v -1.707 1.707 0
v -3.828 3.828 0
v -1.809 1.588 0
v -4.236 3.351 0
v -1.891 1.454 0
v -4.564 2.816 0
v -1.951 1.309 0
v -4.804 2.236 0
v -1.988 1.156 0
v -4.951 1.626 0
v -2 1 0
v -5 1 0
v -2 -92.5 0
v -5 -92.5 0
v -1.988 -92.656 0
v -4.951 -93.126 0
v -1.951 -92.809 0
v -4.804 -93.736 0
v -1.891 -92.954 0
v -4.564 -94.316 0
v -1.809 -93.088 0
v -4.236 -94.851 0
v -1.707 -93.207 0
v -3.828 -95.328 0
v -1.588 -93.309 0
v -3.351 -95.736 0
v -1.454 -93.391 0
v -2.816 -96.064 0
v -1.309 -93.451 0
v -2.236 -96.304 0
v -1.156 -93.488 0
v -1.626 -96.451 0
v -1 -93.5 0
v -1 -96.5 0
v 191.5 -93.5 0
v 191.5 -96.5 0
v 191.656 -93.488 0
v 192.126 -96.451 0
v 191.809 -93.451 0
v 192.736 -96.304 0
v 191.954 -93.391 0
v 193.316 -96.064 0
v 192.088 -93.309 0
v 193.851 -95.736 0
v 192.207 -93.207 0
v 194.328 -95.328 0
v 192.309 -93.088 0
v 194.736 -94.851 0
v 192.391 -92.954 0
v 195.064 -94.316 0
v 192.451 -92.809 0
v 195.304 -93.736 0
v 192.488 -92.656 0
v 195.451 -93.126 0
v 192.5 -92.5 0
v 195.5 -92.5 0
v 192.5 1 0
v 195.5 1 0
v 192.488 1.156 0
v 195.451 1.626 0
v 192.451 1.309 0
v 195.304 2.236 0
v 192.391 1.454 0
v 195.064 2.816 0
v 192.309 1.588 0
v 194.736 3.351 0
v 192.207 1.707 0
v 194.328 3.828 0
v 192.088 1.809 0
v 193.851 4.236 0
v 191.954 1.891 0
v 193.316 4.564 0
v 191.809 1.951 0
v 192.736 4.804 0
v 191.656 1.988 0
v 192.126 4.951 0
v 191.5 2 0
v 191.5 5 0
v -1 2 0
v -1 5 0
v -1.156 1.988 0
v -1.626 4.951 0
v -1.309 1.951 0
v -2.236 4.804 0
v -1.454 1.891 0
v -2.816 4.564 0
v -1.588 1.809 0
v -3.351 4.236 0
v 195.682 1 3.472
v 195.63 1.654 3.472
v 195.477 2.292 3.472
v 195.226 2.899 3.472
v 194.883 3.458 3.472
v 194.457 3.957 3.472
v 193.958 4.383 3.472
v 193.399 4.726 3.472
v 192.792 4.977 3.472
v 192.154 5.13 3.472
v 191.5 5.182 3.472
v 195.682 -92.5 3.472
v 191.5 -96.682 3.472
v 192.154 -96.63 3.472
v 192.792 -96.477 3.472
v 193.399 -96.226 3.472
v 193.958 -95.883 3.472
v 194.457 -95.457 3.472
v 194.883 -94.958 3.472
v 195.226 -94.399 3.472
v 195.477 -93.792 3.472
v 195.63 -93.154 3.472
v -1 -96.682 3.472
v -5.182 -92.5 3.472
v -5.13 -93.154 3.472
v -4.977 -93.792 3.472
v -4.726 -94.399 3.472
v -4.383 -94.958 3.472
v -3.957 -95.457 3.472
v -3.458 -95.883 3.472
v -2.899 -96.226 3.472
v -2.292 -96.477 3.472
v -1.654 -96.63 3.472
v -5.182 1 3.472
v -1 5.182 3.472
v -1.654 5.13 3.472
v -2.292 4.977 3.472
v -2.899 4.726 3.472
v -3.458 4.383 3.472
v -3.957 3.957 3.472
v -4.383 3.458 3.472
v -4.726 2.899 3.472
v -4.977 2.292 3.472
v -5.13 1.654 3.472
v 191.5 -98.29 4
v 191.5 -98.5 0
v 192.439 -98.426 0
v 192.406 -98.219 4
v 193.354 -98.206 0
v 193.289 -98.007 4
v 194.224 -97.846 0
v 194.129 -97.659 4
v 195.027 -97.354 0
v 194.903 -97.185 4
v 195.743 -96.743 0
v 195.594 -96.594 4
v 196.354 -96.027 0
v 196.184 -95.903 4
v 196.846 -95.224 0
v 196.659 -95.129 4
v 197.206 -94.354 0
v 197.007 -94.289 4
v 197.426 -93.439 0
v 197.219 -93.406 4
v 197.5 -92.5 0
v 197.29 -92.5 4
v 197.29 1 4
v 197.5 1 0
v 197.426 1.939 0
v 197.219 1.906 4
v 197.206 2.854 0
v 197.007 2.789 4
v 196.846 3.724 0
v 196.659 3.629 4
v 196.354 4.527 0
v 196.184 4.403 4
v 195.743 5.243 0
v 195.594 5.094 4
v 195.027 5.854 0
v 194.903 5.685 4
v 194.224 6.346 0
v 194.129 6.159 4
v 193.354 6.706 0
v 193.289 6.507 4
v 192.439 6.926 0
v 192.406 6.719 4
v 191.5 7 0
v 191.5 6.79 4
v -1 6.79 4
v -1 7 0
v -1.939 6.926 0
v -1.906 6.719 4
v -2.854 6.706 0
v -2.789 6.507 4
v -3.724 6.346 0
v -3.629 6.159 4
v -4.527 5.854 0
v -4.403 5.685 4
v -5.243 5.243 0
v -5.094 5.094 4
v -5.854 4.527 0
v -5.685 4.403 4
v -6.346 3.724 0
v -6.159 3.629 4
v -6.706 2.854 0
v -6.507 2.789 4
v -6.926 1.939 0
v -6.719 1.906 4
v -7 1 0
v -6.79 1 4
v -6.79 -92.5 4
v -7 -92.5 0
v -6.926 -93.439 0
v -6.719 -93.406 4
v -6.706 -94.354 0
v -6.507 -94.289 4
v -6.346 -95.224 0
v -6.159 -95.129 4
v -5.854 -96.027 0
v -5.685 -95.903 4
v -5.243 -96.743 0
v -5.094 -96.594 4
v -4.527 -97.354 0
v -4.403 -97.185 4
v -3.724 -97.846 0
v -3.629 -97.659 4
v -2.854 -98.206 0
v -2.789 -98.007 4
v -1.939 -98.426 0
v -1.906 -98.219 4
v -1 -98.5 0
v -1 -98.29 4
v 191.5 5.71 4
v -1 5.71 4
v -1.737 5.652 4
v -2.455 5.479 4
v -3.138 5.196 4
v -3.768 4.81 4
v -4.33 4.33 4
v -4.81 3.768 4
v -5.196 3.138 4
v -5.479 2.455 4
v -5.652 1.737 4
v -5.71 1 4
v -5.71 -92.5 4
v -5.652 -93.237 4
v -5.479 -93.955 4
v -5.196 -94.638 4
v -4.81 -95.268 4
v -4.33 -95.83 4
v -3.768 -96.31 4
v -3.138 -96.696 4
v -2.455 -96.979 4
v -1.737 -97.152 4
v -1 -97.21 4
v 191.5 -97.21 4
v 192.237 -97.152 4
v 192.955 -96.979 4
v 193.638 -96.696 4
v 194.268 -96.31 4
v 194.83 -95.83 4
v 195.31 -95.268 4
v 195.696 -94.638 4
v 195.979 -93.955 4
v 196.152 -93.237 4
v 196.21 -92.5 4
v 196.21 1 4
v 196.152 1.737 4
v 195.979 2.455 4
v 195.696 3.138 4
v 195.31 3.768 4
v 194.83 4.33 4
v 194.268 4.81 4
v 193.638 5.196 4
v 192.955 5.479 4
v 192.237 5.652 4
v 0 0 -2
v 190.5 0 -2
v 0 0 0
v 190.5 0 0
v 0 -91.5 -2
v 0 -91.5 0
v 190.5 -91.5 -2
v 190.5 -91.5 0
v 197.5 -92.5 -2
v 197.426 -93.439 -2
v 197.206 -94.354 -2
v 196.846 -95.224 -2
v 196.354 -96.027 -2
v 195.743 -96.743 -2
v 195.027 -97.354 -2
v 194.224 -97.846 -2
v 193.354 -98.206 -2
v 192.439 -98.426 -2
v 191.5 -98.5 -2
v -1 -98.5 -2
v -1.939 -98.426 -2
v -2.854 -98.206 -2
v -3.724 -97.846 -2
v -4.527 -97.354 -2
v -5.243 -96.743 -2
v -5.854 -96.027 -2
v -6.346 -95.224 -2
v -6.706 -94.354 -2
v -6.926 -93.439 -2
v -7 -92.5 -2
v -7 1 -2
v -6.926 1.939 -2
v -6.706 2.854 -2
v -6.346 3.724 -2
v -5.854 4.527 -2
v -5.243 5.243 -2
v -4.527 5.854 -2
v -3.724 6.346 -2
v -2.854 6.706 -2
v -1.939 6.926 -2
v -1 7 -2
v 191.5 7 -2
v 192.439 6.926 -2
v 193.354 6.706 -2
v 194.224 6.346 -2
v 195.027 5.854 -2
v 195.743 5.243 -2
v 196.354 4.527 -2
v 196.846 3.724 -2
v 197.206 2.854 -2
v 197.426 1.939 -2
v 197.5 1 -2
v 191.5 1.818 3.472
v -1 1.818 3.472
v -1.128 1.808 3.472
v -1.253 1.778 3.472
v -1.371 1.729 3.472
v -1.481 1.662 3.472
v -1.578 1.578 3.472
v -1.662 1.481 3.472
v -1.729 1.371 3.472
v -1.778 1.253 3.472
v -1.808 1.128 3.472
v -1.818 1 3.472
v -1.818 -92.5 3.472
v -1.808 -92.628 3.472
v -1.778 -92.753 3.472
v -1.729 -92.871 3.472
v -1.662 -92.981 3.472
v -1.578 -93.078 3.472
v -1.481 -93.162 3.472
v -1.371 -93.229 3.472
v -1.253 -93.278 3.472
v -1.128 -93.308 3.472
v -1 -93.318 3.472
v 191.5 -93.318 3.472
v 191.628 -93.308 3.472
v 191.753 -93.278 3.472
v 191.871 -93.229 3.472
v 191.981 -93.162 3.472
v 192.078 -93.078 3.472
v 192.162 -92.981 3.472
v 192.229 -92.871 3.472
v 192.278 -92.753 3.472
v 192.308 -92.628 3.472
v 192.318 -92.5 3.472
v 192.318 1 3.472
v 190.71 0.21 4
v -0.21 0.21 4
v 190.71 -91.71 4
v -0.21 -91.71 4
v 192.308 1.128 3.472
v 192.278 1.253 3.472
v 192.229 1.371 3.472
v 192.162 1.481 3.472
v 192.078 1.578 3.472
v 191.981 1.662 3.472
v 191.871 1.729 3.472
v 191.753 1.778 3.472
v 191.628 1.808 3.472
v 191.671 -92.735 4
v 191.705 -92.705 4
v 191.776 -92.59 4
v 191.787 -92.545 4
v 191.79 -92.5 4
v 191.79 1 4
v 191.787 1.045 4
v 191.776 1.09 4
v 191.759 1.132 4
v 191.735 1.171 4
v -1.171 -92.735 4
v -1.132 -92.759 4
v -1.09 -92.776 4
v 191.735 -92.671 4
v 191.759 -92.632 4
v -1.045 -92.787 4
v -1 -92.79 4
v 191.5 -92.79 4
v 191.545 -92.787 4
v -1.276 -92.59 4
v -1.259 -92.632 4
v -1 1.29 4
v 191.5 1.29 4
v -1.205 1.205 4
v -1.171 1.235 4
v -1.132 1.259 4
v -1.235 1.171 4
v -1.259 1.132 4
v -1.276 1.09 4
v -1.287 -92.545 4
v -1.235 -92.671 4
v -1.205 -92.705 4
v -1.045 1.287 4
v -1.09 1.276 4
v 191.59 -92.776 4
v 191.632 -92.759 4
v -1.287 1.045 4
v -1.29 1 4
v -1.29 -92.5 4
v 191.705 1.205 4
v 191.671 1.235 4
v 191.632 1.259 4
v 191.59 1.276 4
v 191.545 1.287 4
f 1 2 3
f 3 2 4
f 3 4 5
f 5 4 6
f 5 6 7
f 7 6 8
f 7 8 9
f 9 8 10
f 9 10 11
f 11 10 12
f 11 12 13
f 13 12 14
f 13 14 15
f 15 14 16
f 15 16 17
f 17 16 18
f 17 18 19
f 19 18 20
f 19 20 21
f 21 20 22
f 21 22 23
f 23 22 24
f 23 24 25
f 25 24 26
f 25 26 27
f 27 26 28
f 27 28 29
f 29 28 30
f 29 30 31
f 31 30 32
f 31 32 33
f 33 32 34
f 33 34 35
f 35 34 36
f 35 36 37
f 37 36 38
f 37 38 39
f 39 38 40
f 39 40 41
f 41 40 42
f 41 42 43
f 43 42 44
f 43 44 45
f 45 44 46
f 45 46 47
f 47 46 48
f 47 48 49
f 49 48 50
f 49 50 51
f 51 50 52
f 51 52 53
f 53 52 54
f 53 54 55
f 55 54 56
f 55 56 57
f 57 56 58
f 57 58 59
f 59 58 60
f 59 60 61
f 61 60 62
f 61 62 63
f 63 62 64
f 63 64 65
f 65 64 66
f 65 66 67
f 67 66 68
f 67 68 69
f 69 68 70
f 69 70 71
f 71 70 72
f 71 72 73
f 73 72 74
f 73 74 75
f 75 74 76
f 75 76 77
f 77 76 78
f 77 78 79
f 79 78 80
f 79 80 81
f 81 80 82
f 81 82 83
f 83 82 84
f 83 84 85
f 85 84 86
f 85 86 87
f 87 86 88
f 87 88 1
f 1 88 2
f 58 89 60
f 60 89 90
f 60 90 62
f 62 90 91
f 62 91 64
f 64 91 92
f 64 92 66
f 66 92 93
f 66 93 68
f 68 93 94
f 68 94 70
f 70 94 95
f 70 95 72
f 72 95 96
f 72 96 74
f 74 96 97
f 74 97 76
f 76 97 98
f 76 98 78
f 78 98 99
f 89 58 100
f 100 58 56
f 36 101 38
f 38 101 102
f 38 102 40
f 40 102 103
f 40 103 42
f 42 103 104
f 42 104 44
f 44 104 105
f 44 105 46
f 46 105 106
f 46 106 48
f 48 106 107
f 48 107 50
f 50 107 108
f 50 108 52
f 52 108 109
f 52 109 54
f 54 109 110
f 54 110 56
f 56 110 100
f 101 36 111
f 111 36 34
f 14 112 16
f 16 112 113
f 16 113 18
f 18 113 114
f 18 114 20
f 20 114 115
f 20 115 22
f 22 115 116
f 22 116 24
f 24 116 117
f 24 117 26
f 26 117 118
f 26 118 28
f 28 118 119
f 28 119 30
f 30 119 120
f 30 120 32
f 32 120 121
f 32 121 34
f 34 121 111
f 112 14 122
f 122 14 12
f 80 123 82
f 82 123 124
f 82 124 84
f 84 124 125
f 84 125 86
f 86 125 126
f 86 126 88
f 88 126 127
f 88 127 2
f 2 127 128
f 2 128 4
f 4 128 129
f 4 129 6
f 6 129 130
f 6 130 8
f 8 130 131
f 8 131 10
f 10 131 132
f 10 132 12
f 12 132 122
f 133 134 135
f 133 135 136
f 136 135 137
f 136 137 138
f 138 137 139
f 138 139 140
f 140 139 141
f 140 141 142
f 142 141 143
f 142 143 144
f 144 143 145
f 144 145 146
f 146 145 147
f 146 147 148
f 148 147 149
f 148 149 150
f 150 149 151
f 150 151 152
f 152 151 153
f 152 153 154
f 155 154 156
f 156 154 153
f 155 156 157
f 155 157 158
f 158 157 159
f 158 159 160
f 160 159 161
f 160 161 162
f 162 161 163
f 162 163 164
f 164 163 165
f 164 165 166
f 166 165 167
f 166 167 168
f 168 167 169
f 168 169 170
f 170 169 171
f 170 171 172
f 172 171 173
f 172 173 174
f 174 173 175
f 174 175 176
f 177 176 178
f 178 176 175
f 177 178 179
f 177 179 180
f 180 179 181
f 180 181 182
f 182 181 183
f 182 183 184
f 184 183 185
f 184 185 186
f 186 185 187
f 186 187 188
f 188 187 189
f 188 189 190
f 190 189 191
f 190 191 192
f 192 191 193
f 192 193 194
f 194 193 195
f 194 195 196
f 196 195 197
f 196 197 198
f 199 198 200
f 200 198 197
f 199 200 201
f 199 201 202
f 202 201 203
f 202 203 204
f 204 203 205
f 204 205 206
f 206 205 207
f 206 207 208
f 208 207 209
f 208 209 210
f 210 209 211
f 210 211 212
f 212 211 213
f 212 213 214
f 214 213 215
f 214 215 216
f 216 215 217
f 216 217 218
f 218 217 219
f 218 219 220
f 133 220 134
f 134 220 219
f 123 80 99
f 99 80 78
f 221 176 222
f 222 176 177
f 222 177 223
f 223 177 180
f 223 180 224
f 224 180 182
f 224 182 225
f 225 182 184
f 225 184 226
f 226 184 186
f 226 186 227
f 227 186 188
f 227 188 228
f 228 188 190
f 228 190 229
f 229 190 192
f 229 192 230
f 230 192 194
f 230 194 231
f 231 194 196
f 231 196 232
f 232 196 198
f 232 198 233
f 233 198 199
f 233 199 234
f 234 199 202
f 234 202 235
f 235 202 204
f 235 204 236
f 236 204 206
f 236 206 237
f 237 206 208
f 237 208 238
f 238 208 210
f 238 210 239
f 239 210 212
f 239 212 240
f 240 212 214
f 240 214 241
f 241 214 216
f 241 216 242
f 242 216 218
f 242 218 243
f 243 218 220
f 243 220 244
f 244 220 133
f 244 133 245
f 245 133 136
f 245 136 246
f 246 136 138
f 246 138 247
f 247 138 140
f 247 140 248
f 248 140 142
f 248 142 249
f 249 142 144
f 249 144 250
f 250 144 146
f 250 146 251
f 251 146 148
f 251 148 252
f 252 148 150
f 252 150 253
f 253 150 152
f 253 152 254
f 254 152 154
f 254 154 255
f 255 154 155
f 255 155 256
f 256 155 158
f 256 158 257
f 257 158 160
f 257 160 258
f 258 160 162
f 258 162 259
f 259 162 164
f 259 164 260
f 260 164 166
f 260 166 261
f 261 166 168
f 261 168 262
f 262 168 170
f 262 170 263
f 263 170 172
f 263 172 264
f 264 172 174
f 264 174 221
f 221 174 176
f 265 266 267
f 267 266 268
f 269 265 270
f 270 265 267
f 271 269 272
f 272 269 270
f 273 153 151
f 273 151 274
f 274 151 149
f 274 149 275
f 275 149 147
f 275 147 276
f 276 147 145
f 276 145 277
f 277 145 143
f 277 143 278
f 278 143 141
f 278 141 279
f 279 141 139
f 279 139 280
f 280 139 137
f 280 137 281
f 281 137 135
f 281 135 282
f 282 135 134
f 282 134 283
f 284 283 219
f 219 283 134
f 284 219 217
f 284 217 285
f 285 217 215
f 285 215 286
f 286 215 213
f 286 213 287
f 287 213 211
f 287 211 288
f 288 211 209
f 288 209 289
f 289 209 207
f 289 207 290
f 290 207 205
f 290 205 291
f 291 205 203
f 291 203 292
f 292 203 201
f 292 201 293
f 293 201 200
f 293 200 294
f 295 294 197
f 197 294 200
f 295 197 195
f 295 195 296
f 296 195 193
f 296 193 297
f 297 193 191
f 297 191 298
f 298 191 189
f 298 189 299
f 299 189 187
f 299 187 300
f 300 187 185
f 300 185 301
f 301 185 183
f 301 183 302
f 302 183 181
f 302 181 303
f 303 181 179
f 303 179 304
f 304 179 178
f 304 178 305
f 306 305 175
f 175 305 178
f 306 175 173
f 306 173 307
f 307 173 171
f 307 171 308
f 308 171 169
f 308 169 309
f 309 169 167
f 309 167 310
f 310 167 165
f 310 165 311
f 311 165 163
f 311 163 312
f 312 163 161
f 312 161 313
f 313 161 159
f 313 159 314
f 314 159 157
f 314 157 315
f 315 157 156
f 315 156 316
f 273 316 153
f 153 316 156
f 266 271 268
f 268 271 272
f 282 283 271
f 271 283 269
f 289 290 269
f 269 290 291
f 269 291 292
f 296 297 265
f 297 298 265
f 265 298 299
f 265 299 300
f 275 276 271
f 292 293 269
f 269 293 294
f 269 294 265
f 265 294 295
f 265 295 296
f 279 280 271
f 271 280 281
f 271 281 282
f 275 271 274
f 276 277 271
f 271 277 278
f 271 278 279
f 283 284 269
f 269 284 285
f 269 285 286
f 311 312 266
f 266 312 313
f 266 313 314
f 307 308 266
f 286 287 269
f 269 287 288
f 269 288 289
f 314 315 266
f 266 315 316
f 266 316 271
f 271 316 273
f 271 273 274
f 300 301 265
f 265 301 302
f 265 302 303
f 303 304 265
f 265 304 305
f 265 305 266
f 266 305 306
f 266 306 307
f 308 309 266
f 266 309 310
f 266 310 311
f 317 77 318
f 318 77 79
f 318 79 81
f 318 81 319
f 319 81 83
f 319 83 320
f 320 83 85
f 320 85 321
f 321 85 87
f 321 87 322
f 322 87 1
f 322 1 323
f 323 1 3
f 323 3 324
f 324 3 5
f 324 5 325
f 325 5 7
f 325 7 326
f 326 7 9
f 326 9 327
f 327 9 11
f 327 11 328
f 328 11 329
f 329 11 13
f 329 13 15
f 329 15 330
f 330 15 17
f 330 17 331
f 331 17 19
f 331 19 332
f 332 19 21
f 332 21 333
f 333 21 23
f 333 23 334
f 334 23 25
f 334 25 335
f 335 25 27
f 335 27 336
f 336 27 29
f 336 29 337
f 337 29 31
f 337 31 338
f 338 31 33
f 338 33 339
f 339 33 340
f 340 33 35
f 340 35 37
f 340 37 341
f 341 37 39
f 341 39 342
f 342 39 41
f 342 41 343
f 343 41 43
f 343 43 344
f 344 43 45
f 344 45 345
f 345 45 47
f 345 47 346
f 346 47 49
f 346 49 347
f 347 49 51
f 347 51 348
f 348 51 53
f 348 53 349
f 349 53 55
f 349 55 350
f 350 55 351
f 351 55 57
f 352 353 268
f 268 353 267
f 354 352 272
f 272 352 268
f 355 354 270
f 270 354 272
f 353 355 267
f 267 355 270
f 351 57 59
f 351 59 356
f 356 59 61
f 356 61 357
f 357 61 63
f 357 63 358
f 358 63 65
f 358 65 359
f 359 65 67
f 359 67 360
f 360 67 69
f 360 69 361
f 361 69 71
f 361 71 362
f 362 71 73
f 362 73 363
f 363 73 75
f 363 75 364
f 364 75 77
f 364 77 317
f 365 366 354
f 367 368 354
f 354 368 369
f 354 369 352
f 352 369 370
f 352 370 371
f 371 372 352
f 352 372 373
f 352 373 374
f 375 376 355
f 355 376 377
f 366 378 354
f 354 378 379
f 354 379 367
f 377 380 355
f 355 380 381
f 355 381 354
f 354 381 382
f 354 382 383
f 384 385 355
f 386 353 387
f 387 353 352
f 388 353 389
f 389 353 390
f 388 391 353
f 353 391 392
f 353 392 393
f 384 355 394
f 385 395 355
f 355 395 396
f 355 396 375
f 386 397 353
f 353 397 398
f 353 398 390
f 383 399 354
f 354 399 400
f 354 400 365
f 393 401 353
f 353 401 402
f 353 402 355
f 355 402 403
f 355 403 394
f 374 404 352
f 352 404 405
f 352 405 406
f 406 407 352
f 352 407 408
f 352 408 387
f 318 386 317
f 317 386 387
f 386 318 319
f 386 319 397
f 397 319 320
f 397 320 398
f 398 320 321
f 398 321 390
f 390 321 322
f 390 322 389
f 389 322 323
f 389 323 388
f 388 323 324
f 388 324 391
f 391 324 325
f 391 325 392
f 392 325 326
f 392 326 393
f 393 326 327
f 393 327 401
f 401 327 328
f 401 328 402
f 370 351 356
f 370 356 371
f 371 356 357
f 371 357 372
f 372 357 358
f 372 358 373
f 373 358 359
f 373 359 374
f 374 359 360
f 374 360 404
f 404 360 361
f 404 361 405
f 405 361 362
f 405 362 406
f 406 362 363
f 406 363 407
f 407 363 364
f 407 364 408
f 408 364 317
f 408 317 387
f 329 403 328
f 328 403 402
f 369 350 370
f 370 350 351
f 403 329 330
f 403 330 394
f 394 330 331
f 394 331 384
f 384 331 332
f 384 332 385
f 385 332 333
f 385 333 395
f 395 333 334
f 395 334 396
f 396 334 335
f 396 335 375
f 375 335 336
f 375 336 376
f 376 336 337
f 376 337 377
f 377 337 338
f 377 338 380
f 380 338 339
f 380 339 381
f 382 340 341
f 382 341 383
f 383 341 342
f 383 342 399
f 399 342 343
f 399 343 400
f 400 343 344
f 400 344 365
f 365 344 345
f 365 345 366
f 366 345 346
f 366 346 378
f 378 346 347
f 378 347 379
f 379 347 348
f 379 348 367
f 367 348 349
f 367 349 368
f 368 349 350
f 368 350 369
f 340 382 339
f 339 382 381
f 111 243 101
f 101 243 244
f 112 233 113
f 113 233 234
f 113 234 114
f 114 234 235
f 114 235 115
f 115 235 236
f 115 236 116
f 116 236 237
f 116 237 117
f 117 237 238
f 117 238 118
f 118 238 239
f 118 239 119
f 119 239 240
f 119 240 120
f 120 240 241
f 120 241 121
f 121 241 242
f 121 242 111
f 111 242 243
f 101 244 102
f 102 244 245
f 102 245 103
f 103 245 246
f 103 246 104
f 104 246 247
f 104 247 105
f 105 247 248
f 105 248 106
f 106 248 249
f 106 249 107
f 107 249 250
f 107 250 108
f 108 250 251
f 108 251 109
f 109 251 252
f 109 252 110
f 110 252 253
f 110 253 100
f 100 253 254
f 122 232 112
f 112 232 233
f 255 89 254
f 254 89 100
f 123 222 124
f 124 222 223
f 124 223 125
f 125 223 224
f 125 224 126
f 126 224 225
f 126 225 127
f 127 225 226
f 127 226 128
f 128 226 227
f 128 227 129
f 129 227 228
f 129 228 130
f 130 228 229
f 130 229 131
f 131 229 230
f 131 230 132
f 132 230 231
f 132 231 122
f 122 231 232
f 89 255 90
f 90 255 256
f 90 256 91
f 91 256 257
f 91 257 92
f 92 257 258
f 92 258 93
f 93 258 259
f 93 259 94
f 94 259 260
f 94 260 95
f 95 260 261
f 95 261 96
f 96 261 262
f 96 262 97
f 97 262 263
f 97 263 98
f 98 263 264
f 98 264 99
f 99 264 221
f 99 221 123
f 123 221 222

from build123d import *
from OCP.BRepFilletAPI import BRepFilletAPI_MakeChamfer

# Parameters (mm, degrees)
BOSS_EXTRU_1_DEPTH           = 4
BOSS_EXTRU_1_DRAFT           = 3
ESQUISSE1_W                  = 190.5
ESQUISSE1_H                  = 91.5
BOSS_EXTRU_1_PROFILE_2_DEPTH = 4
BOSS_EXTRU_1_PROFILE_2_DRAFT = 3
ESQUISSE1_4_W                = 190.5
ESQUISSE1_4_H                = 91.5
BOSS_EXTRU_2_DEPTH           = 2
CHANFREIN1_SIZE              = 0.528377251
CHANFREIN1_SIZE_2            = 0.5
CHANFREIN2_SIZE              = 0.528377251
CHANFREIN2_SIZE_2            = 0.5


with BuildPart() as part:
    # Esquisse1 → Boss.-Extru.1 (with draft: the straight prism first)
    with BuildSketch(Plane.XY):
        with BuildLine():
            Line((-1, -98.5), (191.5, -98.5))
            ThreePointArc((191.5, -98.5), (195.742640687, -96.742640687), (197.5, -92.5))
            Line((197.5, -92.5), (197.5, 1))
            ThreePointArc((197.5, 1), (195.742640687, 5.242640687), (191.5, 7))
            Line((191.5, 7), (-1, 7))
            ThreePointArc((-1, 7), (-5.242640687, 5.242640687), (-7, 1))
            Line((-7, 1), (-7, -92.5))
            ThreePointArc((-7, -92.5), (-5.242640687, -96.742640687), (-1, -98.5))
        make_face()
        with BuildLine():
            Line((-1, -96.5), (191.5, -96.5))
            ThreePointArc((191.5, -96.5), (194.328427125, -95.328427125), (195.5, -92.5))
            Line((195.5, -92.5), (195.5, 1))
            ThreePointArc((195.5, 1), (194.328427125, 3.828427125), (191.5, 5))
            Line((191.5, 5), (-1, 5))
            ThreePointArc((-1, 5), (-3.828427125, 3.828427125), (-5, 1))
            Line((-5, 1), (-5, -92.5))
            ThreePointArc((-5, -92.5), (-3.828427125, -95.328427125), (-1, -96.5))
        make_face(mode=Mode.SUBTRACT)
    extrude(amount=BOSS_EXTRU_1_DEPTH)
    # Boss.-Extru.1: the draft: its side faces are tilted about the plane it starts from
    boss_extru_1_sides = [part.faces().sort_by_distance(p)[0] for p in [
        (-5.242640687, -96.742640687, 2),
        (95.25, -98.5, 2),
        (195.742640687, -96.742640687, 2),
        (197.5, -45.75, 2),
        (195.742640687, 5.242640687, 2),
        (95.25, 7, 2),
        (-5.242640687, 5.242640687, 2),
        (-7, -45.75, 2),
        (-5, -45.75, 2),
        (-3.828427125, 3.828427125, 2),
        (95.25, 5, 2),
        (194.328427125, 3.828427125, 2),
        (195.5, -45.75, 2),
        (194.328427125, -95.328427125, 2),
        (95.25, -96.5, 2),
        (-3.828427125, -95.328427125, 2),
    ]]
    draft(boss_extru_1_sides, Plane.XY, BOSS_EXTRU_1_DRAFT)



with BuildPart() as body_2:
    # Esquisse1 → Boss.-Extru.1 profile 2 (with draft: the straight prism first)
    with BuildSketch(Plane.XY):
        with BuildLine():
            Line((-1, -93.5), (191.5, -93.5))
            ThreePointArc((191.5, -93.5), (192.207106781, -93.207106781), (192.5, -92.5))
            Line((192.5, -92.5), (192.5, 1))
            ThreePointArc((192.5, 1), (192.207106781, 1.707106781), (191.5, 2))
            Line((191.5, 2), (-1, 2))
            ThreePointArc((-1, 2), (-1.707106781, 1.707106781), (-2, 1))
            Line((-2, 1), (-2, -92.5))
            ThreePointArc((-2, -92.5), (-1.707106781, -93.207106781), (-1, -93.5))
        make_face()
        with Locations((95.25, -45.75)):
            Rectangle(ESQUISSE1_W, ESQUISSE1_H, mode=Mode.SUBTRACT)
    extrude(amount=BOSS_EXTRU_1_PROFILE_2_DEPTH)
    # Boss.-Extru.1 profile 2: the draft: its side faces are tilted about the plane it starts from
    boss_extru_1_profile_2_sides = [body_2.faces().sort_by_distance(p)[0] for p in [
        (-1.707106781, -93.207106781, 2),
        (95.25, -93.5, 2),
        (192.207106781, -93.207106781, 2),
        (192.5, -45.75, 2),
        (192.207106781, 1.707106781, 2),
        (95.25, 2, 2),
        (-1.707106781, 1.707106781, 2),
        (-2, -45.75, 2),
        (95.25, 0, 2),
        (190.5, -45.75, 2),
        (95.25, -91.5, 2),
        (0, -45.75, 2),
    ]]
    draft(boss_extru_1_profile_2_sides, Plane.XY, BOSS_EXTRU_1_PROFILE_2_DRAFT)


with BuildPart() as part_1:
    add(part.part)

    add(body_2.part)  # Boss.-Extru.2 merges body 2
    # Esquisse1<4> → Boss.-Extru.2 (add)
    with BuildSketch(Plane.XY):
        with BuildLine():
            Line((-1, -98.5), (191.5, -98.5))
            ThreePointArc((191.5, -98.5), (195.742640687, -96.742640687), (197.5, -92.5))
            Line((197.5, -92.5), (197.5, 1))
            ThreePointArc((197.5, 1), (195.742640687, 5.242640687), (191.5, 7))
            Line((191.5, 7), (-1, 7))
            ThreePointArc((-1, 7), (-5.242640687, 5.242640687), (-7, 1))
            Line((-7, 1), (-7, -92.5))
            ThreePointArc((-7, -92.5), (-5.242640687, -96.742640687), (-1, -98.5))
        make_face()
        with Locations((95.25, -45.75)):
            Rectangle(ESQUISSE1_4_W, ESQUISSE1_4_H, mode=Mode.SUBTRACT)
    extrude(amount=-BOSS_EXTRU_2_DEPTH)

    # Chanfrein1
    chanfrein1_edges_1 = [part_1.edges().sort_by_distance(p)[0] for p in [
        (-1.558875197, -93.058875197, 4),
    ]]
    chanfrein1_side_1 = [part_1.faces().sort_by_distance(p)[0] for p in [
        (-1.559245268, -93.059245268, 3.990013705),
    ]]
    chanfrein1_edges_2 = [part_1.edges().sort_by_distance(p)[0] for p in [
        (-1.790368883, -45.75, 4),
    ]]
    chanfrein1_side_2 = [part_1.faces().sort_by_distance(p)[0] for p in [
        (-1.790892242, -45.75, 3.990013705),
    ]]
    chanfrein1_edges_3 = [part_1.edges().sort_by_distance(p)[0] for p in [
        (95.25, -93.290368883, 4),
    ]]
    chanfrein1_side_3 = [part_1.faces().sort_by_distance(p)[0] for p in [
        (95.25, -93.290892242, 3.990013705),
    ]]
    chanfrein1_edges_4 = [part_1.edges().sort_by_distance(p)[0] for p in [
        (192.058875197, -93.058875197, 4),
    ]]
    chanfrein1_side_4 = [part_1.faces().sort_by_distance(p)[0] for p in [
        (192.051804129, -93.051804129, 4),
    ]]
    chanfrein1_edges_5 = [part_1.edges().sort_by_distance(p)[0] for p in [
        (192.290368883, -45.75, 4),
    ]]
    chanfrein1_side_5 = [part_1.faces().sort_by_distance(p)[0] for p in [
        (192.280368883, -45.75, 4),
    ]]
    chanfrein1_edges_6 = [part_1.edges().sort_by_distance(p)[0] for p in [
        (192.058875197, 1.558875197, 4),
    ]]
    chanfrein1_side_6 = [part_1.faces().sort_by_distance(p)[0] for p in [
        (192.051804129, 1.551804129, 4),
    ]]
    chanfrein1_edges_7 = [part_1.edges().sort_by_distance(p)[0] for p in [
        (95.25, 1.790368883, 4),
    ]]
    chanfrein1_side_7 = [part_1.faces().sort_by_distance(p)[0] for p in [
        (95.25, 1.780368883, 4),
    ]]
    chanfrein1_edges_8 = [part_1.edges().sort_by_distance(p)[0] for p in [
        (-1.558875197, 1.558875197, 4),
    ]]
    chanfrein1_side_8 = [part_1.faces().sort_by_distance(p)[0] for p in [
        (-1.551804129, 1.551804129, 4),
    ]]
    chanfrein1 = BRepFilletAPI_MakeChamfer(part_1.part.solid().wrapped)
    for e in chanfrein1_edges_1:
        chanfrein1.Add(CHANFREIN1_SIZE, CHANFREIN1_SIZE_2, e.wrapped, chanfrein1_side_1[0].wrapped)
    for e in chanfrein1_edges_2:
        chanfrein1.Add(CHANFREIN1_SIZE, CHANFREIN1_SIZE_2, e.wrapped, chanfrein1_side_2[0].wrapped)
    for e in chanfrein1_edges_3:
        chanfrein1.Add(CHANFREIN1_SIZE, CHANFREIN1_SIZE_2, e.wrapped, chanfrein1_side_3[0].wrapped)
    for e in chanfrein1_edges_4:
        chanfrein1.Add(CHANFREIN1_SIZE_2, CHANFREIN1_SIZE, e.wrapped, chanfrein1_side_4[0].wrapped)
    for e in chanfrein1_edges_5:
        chanfrein1.Add(CHANFREIN1_SIZE_2, CHANFREIN1_SIZE, e.wrapped, chanfrein1_side_5[0].wrapped)
    for e in chanfrein1_edges_6:
        chanfrein1.Add(CHANFREIN1_SIZE_2, CHANFREIN1_SIZE, e.wrapped, chanfrein1_side_6[0].wrapped)
    for e in chanfrein1_edges_7:
        chanfrein1.Add(CHANFREIN1_SIZE, CHANFREIN1_SIZE_2, e.wrapped, chanfrein1_side_7[0].wrapped)
    for e in chanfrein1_edges_8:
        chanfrein1.Add(CHANFREIN1_SIZE_2, CHANFREIN1_SIZE, e.wrapped, chanfrein1_side_8[0].wrapped)
    add(Compound.cast(chanfrein1.Shape()), mode=Mode.REPLACE)

    # Chanfrein2
    chanfrein2_edges_1 = [part_1.edges().sort_by_distance(p)[0] for p in [
        (-3.976658709, 3.976658709, 4),
    ]]
    chanfrein2_side_1 = [part_1.faces().sort_by_distance(p)[0] for p in [
        (-3.976288638, 3.976288638, 3.990013705),
    ]]
    chanfrein2_edges_2 = [part_1.edges().sort_by_distance(p)[0] for p in [
        (95.25, 5.209631117, 4),
    ]]
    chanfrein2_side_2 = [part_1.faces().sort_by_distance(p)[0] for p in [
        (95.25, 5.209107758, 3.990013705),
    ]]
    chanfrein2_edges_3 = [part_1.edges().sort_by_distance(p)[0] for p in [
        (-5.209631117, -45.75, 4),
    ]]
    chanfrein2_side_3 = [part_1.faces().sort_by_distance(p)[0] for p in [
        (-5.209107758, -45.75, 3.990013705),
    ]]
    chanfrein2_edges_4 = [part_1.edges().sort_by_distance(p)[0] for p in [
        (194.476658709, 3.976658709, 4),
    ]]
    chanfrein2_side_4 = [part_1.faces().sort_by_distance(p)[0] for p in [
        (194.476288638, 3.976288638, 3.990013705),
    ]]
    chanfrein2_edges_5 = [part_1.edges().sort_by_distance(p)[0] for p in [
        (-3.976658709, -95.476658709, 4),
    ]]
    chanfrein2_side_5 = [part_1.faces().sort_by_distance(p)[0] for p in [
        (-3.976288638, -95.476288638, 3.990013705),
    ]]
    chanfrein2_edges_6 = [part_1.edges().sort_by_distance(p)[0] for p in [
        (195.709631117, -45.75, 4),
    ]]
    chanfrein2_side_6 = [part_1.faces().sort_by_distance(p)[0] for p in [
        (195.709107758, -45.75, 3.990013705),
    ]]
    chanfrein2_edges_7 = [part_1.edges().sort_by_distance(p)[0] for p in [
        (95.25, -96.709631117, 4),
    ]]
    chanfrein2_side_7 = [part_1.faces().sort_by_distance(p)[0] for p in [
        (95.25, -96.709107758, 3.990013705),
    ]]
    chanfrein2_edges_8 = [part_1.edges().sort_by_distance(p)[0] for p in [
        (194.476658709, -95.476658709, 4),
    ]]
    chanfrein2_side_8 = [part_1.faces().sort_by_distance(p)[0] for p in [
        (194.476288638, -95.476288638, 3.990013705),
    ]]
    chanfrein2 = BRepFilletAPI_MakeChamfer(part_1.part.solid().wrapped)
    for e in chanfrein2_edges_1:
        chanfrein2.Add(CHANFREIN2_SIZE, CHANFREIN2_SIZE_2, e.wrapped, chanfrein2_side_1[0].wrapped)
    for e in chanfrein2_edges_2:
        chanfrein2.Add(CHANFREIN2_SIZE, CHANFREIN2_SIZE_2, e.wrapped, chanfrein2_side_2[0].wrapped)
    for e in chanfrein2_edges_3:
        chanfrein2.Add(CHANFREIN2_SIZE, CHANFREIN2_SIZE_2, e.wrapped, chanfrein2_side_3[0].wrapped)
    for e in chanfrein2_edges_4:
        chanfrein2.Add(CHANFREIN2_SIZE_2, CHANFREIN2_SIZE, e.wrapped, chanfrein2_side_4[0].wrapped)
    for e in chanfrein2_edges_5:
        chanfrein2.Add(CHANFREIN2_SIZE, CHANFREIN2_SIZE_2, e.wrapped, chanfrein2_side_5[0].wrapped)
    for e in chanfrein2_edges_6:
        chanfrein2.Add(CHANFREIN2_SIZE, CHANFREIN2_SIZE_2, e.wrapped, chanfrein2_side_6[0].wrapped)
    for e in chanfrein2_edges_7:
        chanfrein2.Add(CHANFREIN2_SIZE, CHANFREIN2_SIZE_2, e.wrapped, chanfrein2_side_7[0].wrapped)
    for e in chanfrein2_edges_8:
        chanfrein2.Add(CHANFREIN2_SIZE, CHANFREIN2_SIZE_2, e.wrapped, chanfrein2_side_8[0].wrapped)
    add(Compound.cast(chanfrein2.Shape()), mode=Mode.REPLACE)


solid = part_1.part
